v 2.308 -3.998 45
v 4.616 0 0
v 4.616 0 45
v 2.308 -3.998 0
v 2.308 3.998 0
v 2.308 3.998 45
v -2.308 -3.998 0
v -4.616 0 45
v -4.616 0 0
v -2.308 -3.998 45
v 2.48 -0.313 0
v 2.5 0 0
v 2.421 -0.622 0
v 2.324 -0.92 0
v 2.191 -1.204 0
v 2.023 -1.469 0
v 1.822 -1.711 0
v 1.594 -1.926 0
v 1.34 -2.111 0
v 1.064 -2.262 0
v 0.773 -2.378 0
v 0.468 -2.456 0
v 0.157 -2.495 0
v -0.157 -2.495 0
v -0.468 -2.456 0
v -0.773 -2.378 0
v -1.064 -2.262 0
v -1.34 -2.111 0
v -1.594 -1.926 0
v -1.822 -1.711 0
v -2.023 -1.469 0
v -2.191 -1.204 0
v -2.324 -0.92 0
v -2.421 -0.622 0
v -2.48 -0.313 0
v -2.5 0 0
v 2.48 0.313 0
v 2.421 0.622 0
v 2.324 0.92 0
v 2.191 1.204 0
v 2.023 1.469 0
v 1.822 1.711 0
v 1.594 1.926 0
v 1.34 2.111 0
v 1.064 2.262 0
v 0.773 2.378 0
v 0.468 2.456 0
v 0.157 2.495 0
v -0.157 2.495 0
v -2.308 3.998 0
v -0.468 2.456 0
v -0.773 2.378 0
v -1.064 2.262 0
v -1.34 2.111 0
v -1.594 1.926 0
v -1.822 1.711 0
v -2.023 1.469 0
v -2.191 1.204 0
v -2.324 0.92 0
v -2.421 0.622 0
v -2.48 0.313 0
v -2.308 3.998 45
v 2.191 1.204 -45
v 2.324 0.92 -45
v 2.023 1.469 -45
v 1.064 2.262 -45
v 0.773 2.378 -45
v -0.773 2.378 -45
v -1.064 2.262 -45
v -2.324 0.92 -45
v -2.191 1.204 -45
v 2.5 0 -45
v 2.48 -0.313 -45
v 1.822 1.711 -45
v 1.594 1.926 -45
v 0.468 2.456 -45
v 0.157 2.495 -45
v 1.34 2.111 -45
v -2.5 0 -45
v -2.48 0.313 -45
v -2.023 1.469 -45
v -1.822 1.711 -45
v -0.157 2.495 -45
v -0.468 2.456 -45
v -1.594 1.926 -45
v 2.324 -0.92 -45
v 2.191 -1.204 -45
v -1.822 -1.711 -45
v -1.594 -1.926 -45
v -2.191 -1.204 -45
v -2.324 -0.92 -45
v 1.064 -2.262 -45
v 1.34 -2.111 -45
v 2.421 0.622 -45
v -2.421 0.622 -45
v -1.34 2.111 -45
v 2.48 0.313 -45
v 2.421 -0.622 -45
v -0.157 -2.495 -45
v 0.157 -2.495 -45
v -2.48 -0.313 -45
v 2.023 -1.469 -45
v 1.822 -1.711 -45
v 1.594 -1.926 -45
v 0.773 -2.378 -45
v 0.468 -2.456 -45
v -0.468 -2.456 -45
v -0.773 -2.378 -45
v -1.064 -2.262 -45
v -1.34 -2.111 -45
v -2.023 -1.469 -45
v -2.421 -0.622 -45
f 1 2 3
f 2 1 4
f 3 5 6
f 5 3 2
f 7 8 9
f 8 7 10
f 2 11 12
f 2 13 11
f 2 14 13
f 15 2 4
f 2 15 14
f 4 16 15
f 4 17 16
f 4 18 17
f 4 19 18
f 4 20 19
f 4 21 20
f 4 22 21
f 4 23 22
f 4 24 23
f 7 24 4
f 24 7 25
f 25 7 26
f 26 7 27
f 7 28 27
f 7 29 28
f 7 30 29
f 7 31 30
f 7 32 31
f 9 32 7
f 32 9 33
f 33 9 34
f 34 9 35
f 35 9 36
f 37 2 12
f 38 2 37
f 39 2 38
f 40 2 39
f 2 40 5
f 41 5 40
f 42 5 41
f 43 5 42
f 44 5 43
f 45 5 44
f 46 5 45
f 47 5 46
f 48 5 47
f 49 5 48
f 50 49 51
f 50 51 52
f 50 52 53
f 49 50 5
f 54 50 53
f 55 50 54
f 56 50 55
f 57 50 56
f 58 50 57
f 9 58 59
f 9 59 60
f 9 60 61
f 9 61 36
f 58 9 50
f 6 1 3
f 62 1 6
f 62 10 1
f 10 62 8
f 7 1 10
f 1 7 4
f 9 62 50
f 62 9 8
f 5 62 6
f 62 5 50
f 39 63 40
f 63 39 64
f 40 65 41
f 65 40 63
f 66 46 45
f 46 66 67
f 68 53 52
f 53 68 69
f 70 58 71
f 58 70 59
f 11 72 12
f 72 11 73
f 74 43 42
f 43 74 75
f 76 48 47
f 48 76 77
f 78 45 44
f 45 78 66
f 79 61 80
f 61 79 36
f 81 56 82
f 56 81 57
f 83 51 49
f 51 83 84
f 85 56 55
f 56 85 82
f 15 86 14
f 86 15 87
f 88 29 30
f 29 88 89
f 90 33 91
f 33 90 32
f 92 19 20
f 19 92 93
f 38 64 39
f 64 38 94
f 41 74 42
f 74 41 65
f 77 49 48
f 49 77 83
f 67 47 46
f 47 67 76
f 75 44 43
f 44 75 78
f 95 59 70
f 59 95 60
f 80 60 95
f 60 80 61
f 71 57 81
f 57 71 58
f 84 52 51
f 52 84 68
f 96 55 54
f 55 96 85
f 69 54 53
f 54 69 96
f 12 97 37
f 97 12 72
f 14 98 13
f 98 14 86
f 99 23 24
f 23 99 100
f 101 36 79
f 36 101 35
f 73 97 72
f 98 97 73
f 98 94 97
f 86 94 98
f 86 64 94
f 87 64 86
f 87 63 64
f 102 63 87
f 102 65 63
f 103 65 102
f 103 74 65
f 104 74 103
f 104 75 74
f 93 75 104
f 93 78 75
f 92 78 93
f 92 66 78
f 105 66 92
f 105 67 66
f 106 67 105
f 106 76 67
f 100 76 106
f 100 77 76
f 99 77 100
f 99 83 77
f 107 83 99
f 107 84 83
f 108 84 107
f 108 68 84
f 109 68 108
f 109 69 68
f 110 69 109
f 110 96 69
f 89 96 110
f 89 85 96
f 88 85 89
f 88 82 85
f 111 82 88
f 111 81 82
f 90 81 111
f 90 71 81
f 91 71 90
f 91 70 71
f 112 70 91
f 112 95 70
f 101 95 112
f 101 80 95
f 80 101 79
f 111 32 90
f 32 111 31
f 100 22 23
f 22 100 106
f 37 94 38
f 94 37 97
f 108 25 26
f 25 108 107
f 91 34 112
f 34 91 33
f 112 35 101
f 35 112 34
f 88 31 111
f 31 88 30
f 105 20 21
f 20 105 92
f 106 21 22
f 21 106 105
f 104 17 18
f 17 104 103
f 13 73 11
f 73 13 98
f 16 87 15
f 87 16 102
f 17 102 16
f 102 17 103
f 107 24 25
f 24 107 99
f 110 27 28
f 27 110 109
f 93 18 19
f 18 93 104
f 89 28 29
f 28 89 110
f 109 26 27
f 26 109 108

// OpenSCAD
$fn = 50;


difference() {
	union() {
		linear_extrude(height = 45) {
			polygon(points = [[4.6160000000, 0.0000000000], [2.3080000000, 3.9975732639], [-2.3080000000, 3.9975732639], [-4.6160000000, 0.0000000000], [-2.3080000000, -3.9975732639], [2.3080000000, -3.9975732639]]);
		}
		translate(v = [0, 0, -45]) {
			cylinder(h = 45, r = 2.5000000000);
		}
	}
	union();
}
